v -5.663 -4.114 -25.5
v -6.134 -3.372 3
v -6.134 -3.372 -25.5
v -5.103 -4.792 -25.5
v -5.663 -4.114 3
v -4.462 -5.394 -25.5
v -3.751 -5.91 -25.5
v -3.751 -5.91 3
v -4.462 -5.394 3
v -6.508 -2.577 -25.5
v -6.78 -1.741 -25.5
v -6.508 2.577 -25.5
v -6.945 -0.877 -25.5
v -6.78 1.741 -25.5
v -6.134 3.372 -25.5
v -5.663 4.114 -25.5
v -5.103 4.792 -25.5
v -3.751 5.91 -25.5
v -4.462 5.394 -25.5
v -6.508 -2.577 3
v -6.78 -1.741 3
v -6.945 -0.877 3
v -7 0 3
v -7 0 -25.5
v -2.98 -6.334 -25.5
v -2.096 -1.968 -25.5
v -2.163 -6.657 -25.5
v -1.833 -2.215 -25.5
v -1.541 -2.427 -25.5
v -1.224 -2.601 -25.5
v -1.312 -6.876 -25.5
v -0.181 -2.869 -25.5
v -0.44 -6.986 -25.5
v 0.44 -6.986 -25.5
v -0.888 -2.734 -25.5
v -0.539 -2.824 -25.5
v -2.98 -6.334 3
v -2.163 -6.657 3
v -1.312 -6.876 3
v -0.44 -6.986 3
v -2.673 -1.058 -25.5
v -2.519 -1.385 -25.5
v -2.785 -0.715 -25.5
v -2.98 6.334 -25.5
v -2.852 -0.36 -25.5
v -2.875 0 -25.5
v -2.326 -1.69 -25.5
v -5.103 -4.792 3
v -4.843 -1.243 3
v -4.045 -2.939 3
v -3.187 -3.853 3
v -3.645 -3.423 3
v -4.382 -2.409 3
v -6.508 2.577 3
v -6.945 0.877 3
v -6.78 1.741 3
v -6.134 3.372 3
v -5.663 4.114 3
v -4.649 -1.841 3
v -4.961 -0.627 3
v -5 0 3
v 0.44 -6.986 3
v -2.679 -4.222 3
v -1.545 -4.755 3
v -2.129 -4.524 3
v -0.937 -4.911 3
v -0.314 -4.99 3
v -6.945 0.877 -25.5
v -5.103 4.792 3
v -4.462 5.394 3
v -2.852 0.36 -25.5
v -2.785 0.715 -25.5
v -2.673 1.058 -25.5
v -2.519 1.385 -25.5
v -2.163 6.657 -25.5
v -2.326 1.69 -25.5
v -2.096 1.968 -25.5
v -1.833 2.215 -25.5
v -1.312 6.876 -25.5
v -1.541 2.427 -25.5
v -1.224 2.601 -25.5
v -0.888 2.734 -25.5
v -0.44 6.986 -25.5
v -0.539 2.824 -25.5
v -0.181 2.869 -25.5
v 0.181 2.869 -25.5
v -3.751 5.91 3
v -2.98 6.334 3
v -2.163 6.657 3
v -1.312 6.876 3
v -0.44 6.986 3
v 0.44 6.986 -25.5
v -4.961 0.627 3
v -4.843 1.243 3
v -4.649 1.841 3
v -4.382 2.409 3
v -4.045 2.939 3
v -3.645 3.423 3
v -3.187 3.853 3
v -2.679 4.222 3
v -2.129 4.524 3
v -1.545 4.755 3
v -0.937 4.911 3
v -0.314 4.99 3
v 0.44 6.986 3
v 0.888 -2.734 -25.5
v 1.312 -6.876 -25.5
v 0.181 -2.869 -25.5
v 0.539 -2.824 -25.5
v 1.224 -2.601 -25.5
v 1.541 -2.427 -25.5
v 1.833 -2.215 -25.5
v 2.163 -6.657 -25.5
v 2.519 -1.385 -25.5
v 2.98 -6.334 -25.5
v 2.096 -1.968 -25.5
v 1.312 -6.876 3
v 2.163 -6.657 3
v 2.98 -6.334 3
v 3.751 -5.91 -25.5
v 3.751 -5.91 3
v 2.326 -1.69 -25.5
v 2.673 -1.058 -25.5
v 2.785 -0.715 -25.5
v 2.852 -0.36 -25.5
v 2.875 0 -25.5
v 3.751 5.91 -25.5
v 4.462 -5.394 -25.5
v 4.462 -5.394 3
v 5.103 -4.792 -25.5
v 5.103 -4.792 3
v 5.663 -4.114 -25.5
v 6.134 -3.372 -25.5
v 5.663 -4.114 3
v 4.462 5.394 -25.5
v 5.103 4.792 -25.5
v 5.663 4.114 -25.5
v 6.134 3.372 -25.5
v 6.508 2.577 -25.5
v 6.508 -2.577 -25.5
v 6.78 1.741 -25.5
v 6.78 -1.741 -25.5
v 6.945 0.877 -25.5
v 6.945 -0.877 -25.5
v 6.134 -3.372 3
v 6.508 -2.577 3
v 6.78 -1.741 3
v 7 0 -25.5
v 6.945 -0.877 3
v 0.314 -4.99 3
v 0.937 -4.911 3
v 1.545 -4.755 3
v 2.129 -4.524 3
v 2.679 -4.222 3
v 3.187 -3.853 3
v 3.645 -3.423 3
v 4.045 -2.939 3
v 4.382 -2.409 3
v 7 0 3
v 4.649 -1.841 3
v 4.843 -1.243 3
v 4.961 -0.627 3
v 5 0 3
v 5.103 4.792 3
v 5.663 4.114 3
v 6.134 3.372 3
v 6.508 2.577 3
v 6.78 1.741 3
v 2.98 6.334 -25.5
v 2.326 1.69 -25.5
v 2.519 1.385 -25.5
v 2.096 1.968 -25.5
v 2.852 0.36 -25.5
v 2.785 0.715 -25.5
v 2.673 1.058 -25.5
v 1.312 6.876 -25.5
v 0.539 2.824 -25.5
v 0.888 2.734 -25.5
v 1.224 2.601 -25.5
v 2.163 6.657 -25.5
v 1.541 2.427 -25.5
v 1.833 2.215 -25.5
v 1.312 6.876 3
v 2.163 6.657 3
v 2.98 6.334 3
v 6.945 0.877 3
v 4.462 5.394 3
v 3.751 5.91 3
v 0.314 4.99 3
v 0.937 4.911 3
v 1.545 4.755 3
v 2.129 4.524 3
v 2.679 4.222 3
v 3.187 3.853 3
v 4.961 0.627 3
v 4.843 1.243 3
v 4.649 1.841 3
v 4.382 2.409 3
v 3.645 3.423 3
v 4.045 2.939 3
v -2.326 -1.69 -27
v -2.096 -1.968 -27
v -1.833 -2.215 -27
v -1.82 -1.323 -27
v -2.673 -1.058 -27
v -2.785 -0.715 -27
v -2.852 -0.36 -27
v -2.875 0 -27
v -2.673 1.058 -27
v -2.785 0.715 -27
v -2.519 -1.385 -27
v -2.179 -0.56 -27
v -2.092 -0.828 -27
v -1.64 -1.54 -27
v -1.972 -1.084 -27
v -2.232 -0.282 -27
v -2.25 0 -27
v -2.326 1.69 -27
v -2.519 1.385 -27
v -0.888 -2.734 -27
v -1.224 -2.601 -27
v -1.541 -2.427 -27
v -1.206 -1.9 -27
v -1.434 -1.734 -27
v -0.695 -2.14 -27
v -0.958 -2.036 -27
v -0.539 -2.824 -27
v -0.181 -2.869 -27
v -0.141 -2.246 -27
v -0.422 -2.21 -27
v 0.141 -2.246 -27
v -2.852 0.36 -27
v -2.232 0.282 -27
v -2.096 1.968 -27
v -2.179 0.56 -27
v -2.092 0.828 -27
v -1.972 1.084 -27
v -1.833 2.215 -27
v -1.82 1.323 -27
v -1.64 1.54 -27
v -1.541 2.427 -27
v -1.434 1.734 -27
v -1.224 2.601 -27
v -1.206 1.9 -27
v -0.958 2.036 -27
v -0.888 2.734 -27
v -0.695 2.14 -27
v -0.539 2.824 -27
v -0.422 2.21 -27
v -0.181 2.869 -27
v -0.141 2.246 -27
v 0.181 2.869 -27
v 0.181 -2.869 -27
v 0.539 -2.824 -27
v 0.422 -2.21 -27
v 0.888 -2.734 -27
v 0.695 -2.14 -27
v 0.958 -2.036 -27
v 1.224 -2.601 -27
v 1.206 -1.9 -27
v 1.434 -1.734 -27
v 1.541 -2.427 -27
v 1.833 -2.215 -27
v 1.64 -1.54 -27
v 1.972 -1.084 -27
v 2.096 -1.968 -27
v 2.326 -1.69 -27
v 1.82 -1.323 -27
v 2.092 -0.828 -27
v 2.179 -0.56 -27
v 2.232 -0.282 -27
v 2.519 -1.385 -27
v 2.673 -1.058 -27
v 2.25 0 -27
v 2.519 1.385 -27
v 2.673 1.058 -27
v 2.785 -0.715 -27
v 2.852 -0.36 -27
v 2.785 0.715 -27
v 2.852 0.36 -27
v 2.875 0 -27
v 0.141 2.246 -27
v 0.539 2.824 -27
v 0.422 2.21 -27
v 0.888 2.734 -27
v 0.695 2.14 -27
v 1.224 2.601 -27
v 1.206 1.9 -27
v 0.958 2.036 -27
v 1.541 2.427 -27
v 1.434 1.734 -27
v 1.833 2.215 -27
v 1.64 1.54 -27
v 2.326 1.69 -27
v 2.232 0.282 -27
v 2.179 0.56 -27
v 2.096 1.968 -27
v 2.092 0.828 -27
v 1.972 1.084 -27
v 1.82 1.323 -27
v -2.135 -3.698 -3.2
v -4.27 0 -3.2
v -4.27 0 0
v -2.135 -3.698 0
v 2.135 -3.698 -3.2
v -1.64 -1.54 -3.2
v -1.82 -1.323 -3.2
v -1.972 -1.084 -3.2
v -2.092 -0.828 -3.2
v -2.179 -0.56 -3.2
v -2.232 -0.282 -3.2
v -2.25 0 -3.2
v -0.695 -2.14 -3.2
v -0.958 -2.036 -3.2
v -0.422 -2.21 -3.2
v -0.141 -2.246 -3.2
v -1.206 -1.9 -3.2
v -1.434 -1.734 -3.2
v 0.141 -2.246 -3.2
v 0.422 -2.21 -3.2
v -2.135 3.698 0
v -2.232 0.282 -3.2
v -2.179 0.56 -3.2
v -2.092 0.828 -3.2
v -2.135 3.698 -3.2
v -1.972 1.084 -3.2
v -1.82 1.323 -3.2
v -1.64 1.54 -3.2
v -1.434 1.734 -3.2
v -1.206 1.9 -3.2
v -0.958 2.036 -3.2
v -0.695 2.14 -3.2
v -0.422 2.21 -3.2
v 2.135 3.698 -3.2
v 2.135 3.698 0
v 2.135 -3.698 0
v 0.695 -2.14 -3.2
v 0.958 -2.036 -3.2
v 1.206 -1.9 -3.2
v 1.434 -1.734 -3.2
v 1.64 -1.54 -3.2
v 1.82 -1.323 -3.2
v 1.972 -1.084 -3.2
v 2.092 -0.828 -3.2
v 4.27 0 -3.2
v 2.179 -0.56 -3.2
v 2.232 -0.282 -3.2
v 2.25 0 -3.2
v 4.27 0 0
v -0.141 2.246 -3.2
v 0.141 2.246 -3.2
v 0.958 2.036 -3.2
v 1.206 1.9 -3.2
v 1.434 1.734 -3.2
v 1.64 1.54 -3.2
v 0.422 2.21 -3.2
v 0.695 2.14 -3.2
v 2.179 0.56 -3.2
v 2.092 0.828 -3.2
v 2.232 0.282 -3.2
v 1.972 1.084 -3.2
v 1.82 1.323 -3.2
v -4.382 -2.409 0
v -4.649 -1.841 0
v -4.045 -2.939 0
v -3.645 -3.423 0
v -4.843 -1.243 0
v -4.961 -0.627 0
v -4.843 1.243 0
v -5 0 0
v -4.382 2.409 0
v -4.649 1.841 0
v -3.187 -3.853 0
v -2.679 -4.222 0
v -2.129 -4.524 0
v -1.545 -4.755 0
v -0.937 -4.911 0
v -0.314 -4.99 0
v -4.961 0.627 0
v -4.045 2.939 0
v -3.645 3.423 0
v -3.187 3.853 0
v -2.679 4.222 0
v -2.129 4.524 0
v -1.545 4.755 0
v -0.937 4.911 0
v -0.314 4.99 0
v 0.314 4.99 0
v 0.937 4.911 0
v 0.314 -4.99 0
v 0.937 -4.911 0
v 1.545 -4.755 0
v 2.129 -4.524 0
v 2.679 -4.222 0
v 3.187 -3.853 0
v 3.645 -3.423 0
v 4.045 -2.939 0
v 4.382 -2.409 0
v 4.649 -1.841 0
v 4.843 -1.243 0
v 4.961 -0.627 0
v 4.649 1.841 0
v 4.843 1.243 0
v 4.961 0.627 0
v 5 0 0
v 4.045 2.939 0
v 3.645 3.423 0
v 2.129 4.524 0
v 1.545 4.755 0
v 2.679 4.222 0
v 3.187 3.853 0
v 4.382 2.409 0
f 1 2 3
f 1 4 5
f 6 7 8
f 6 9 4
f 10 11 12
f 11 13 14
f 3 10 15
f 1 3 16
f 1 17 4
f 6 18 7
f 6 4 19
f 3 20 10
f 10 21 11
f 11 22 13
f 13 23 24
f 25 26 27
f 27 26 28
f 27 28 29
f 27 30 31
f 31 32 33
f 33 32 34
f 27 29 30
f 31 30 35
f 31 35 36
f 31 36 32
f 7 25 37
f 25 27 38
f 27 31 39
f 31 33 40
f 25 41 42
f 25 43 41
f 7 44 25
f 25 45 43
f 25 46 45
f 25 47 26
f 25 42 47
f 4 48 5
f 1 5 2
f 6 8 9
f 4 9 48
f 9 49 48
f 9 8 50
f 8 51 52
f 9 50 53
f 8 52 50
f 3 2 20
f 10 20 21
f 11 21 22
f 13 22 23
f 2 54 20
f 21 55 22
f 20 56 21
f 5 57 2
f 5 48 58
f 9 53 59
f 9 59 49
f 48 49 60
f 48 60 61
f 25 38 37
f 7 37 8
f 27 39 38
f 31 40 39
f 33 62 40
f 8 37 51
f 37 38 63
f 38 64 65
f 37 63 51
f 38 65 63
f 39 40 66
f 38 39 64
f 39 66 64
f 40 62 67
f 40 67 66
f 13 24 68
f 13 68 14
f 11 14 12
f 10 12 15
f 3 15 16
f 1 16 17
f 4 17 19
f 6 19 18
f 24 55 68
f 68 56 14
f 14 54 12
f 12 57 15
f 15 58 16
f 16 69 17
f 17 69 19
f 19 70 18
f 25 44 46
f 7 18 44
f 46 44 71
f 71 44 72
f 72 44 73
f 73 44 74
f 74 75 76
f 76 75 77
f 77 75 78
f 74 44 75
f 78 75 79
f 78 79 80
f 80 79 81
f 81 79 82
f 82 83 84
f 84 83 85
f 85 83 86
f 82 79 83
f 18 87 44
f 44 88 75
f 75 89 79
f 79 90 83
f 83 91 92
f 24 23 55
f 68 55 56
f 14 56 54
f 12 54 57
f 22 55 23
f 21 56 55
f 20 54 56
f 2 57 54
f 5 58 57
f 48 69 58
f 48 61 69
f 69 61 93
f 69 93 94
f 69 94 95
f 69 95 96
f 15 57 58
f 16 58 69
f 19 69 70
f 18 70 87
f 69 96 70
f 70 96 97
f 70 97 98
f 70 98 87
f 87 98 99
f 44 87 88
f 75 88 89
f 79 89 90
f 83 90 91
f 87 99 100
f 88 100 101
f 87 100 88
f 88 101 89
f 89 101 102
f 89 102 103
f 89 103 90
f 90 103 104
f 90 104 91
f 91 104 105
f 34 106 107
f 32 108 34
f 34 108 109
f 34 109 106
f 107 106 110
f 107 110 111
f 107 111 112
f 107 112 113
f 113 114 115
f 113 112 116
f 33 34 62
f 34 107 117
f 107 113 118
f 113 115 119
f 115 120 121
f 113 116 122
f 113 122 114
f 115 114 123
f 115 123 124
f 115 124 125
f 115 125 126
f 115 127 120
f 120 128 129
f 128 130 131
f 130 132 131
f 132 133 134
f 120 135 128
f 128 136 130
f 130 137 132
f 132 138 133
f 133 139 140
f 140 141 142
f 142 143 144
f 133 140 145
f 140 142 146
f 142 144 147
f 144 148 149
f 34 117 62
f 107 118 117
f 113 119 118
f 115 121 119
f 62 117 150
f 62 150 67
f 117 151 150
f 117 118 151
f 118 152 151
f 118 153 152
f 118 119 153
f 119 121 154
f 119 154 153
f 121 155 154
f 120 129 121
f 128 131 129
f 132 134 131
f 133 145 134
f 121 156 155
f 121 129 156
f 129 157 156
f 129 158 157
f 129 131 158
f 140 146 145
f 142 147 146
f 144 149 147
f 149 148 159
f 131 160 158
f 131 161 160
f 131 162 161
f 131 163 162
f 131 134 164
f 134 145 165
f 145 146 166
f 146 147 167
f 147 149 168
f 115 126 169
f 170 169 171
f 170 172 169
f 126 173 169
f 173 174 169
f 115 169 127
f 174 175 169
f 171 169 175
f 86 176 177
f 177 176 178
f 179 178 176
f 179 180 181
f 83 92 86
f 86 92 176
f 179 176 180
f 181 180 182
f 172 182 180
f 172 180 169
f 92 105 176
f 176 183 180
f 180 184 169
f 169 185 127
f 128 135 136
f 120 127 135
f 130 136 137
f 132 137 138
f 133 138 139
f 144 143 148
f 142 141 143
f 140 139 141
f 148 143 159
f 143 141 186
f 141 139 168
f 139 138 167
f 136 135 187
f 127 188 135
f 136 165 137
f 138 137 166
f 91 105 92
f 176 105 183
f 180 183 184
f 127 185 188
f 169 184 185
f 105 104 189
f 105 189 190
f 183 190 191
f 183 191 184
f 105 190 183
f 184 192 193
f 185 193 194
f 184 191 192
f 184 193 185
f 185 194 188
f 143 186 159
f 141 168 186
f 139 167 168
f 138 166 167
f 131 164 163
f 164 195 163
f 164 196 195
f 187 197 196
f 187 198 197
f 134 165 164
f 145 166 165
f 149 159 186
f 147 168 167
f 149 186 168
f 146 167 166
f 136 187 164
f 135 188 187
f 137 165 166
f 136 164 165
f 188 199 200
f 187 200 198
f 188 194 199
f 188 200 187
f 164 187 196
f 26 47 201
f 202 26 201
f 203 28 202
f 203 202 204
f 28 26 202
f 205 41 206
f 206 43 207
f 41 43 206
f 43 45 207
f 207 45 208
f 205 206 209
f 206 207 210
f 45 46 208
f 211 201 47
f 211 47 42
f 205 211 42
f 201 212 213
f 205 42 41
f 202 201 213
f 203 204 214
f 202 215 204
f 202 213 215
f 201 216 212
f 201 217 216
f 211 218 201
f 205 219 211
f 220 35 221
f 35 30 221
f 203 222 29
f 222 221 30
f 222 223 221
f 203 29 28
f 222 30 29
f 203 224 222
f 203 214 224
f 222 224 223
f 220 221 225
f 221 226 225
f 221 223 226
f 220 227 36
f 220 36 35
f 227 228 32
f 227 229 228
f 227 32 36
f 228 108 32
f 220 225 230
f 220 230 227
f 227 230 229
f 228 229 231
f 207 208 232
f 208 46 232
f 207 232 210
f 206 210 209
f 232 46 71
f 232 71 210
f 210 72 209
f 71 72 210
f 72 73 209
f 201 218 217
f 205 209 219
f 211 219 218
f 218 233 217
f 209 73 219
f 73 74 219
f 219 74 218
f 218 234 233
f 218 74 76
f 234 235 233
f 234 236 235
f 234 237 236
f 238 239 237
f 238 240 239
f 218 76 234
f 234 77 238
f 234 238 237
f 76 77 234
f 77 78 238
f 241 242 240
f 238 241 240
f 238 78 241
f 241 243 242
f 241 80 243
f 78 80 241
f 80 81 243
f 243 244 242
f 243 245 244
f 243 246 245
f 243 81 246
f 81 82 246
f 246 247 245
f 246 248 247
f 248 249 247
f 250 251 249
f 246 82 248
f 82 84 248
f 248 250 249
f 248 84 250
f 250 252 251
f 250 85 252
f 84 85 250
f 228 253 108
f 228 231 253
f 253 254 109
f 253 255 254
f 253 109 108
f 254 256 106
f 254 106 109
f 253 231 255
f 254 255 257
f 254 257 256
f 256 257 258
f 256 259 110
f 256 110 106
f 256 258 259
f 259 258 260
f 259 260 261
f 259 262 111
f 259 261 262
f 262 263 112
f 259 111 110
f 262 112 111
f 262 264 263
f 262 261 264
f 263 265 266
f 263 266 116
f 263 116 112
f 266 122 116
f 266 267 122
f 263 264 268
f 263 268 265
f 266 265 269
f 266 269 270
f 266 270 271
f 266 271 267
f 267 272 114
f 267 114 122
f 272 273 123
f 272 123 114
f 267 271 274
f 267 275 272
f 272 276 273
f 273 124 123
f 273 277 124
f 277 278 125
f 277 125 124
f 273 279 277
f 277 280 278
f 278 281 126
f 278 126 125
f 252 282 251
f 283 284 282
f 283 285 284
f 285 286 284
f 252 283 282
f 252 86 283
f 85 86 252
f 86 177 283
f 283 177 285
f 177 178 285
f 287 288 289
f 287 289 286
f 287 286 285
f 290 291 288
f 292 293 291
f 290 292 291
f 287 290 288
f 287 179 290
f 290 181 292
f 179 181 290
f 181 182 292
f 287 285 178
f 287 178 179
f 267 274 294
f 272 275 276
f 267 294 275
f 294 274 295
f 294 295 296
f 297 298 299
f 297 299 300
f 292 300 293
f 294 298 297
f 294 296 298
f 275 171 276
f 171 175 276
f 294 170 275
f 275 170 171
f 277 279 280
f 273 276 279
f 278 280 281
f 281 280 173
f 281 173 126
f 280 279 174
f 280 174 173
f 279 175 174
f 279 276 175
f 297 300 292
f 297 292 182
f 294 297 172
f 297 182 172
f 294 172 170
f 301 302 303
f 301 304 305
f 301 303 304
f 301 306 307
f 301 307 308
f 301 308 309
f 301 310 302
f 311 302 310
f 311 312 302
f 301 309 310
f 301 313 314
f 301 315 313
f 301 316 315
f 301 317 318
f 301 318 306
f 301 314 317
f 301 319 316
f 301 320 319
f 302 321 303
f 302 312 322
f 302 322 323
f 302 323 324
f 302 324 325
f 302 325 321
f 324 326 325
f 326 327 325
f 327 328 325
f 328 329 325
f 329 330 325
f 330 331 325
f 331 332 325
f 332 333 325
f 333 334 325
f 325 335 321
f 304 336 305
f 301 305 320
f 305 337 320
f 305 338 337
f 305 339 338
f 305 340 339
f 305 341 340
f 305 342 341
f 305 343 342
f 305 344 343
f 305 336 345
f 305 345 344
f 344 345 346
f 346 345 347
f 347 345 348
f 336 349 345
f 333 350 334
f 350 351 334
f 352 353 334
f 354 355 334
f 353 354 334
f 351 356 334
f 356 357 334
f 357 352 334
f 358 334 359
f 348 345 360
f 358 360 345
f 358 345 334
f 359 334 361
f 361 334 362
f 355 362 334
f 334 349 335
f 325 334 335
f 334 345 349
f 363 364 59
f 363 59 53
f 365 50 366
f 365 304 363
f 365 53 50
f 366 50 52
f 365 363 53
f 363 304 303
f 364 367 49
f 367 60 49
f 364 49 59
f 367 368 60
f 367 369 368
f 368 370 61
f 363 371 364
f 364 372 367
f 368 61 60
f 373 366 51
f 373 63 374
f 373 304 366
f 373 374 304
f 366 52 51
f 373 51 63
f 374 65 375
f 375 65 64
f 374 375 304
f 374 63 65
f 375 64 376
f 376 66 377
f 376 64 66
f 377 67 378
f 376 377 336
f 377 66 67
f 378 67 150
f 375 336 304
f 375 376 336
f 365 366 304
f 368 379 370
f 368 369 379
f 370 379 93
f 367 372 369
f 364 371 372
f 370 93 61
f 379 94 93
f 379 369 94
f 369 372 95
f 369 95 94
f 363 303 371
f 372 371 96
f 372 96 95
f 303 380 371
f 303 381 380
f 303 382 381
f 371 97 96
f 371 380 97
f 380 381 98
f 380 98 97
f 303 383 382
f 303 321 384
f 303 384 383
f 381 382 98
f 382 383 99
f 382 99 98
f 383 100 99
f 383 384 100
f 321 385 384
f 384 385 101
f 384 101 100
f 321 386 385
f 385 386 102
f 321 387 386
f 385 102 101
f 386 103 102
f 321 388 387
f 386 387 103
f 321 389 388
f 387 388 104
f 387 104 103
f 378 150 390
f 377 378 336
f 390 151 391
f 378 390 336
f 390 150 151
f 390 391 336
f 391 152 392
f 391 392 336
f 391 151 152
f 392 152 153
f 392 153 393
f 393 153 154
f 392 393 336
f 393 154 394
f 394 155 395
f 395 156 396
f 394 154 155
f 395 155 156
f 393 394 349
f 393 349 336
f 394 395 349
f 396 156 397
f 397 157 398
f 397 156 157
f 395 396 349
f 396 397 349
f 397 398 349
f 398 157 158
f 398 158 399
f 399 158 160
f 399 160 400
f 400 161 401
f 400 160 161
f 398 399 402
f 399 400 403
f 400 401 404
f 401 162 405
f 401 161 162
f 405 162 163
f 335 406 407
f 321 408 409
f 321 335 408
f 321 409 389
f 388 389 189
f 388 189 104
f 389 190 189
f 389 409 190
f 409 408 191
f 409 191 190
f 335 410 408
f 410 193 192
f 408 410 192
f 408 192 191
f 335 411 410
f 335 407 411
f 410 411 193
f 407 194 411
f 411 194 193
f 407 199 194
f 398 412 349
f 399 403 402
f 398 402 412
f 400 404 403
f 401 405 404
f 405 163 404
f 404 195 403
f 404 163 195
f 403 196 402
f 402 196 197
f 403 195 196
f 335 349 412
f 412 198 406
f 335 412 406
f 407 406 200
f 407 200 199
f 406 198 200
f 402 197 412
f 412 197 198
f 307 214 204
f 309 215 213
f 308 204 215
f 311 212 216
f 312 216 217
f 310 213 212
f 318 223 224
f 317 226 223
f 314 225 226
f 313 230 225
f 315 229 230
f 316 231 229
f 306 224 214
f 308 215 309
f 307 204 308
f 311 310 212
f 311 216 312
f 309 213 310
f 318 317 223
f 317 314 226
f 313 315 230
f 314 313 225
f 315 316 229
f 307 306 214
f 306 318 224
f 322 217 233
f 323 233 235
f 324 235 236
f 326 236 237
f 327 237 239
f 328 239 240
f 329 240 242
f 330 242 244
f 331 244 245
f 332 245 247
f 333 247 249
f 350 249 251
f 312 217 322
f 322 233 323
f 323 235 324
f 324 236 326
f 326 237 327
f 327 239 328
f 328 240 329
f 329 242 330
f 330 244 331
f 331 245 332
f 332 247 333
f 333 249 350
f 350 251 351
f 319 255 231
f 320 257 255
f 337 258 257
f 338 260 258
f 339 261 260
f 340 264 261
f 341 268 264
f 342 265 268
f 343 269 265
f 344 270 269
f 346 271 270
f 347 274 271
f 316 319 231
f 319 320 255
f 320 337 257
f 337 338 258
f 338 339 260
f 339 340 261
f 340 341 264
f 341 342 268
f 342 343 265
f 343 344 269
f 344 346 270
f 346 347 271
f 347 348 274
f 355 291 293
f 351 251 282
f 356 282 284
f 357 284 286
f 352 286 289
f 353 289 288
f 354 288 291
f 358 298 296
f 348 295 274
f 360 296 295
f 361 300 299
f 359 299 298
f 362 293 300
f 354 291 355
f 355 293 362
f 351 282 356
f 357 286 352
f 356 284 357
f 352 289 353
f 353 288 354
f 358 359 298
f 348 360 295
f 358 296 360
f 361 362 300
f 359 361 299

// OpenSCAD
$fn = 50;

difference() {
	union() {
		translate(v = [0, 0, -25.5]) {
			cylinder(h = 28.5, r = 7.0);
		}
		#translate(v = [0, 0, -27.0]) {
			cylinder(h = 27, r = 2.875);
		}
	}
	union() {
		translate(v = [0, 0, 0]) {
			rotate(a = [0, 0, 0]) {
				difference() {
					union() {
						translate(v = [0, 0, -3.2]) {
							linear_extrude(height = 3.2) {
								polygon(points = [[4.2698, 0.0], [2.1349000000000005, 3.697755269078796], [-2.134899999999999, 3.6977552690787965], [-4.2698, 5.228996902999369e-16], [-2.134900000000002, -3.6977552690787956], [2.1348999999999974, -3.697755269078798]]);
							}
						}
					}
					union();
				}
			}
		}
		#cylinder(h = 3, r = 5.0);
		#translate(v = [0, 0, -100.0]) {
			cylinder(h = 200, r = 2.25);
		}
	}
}
